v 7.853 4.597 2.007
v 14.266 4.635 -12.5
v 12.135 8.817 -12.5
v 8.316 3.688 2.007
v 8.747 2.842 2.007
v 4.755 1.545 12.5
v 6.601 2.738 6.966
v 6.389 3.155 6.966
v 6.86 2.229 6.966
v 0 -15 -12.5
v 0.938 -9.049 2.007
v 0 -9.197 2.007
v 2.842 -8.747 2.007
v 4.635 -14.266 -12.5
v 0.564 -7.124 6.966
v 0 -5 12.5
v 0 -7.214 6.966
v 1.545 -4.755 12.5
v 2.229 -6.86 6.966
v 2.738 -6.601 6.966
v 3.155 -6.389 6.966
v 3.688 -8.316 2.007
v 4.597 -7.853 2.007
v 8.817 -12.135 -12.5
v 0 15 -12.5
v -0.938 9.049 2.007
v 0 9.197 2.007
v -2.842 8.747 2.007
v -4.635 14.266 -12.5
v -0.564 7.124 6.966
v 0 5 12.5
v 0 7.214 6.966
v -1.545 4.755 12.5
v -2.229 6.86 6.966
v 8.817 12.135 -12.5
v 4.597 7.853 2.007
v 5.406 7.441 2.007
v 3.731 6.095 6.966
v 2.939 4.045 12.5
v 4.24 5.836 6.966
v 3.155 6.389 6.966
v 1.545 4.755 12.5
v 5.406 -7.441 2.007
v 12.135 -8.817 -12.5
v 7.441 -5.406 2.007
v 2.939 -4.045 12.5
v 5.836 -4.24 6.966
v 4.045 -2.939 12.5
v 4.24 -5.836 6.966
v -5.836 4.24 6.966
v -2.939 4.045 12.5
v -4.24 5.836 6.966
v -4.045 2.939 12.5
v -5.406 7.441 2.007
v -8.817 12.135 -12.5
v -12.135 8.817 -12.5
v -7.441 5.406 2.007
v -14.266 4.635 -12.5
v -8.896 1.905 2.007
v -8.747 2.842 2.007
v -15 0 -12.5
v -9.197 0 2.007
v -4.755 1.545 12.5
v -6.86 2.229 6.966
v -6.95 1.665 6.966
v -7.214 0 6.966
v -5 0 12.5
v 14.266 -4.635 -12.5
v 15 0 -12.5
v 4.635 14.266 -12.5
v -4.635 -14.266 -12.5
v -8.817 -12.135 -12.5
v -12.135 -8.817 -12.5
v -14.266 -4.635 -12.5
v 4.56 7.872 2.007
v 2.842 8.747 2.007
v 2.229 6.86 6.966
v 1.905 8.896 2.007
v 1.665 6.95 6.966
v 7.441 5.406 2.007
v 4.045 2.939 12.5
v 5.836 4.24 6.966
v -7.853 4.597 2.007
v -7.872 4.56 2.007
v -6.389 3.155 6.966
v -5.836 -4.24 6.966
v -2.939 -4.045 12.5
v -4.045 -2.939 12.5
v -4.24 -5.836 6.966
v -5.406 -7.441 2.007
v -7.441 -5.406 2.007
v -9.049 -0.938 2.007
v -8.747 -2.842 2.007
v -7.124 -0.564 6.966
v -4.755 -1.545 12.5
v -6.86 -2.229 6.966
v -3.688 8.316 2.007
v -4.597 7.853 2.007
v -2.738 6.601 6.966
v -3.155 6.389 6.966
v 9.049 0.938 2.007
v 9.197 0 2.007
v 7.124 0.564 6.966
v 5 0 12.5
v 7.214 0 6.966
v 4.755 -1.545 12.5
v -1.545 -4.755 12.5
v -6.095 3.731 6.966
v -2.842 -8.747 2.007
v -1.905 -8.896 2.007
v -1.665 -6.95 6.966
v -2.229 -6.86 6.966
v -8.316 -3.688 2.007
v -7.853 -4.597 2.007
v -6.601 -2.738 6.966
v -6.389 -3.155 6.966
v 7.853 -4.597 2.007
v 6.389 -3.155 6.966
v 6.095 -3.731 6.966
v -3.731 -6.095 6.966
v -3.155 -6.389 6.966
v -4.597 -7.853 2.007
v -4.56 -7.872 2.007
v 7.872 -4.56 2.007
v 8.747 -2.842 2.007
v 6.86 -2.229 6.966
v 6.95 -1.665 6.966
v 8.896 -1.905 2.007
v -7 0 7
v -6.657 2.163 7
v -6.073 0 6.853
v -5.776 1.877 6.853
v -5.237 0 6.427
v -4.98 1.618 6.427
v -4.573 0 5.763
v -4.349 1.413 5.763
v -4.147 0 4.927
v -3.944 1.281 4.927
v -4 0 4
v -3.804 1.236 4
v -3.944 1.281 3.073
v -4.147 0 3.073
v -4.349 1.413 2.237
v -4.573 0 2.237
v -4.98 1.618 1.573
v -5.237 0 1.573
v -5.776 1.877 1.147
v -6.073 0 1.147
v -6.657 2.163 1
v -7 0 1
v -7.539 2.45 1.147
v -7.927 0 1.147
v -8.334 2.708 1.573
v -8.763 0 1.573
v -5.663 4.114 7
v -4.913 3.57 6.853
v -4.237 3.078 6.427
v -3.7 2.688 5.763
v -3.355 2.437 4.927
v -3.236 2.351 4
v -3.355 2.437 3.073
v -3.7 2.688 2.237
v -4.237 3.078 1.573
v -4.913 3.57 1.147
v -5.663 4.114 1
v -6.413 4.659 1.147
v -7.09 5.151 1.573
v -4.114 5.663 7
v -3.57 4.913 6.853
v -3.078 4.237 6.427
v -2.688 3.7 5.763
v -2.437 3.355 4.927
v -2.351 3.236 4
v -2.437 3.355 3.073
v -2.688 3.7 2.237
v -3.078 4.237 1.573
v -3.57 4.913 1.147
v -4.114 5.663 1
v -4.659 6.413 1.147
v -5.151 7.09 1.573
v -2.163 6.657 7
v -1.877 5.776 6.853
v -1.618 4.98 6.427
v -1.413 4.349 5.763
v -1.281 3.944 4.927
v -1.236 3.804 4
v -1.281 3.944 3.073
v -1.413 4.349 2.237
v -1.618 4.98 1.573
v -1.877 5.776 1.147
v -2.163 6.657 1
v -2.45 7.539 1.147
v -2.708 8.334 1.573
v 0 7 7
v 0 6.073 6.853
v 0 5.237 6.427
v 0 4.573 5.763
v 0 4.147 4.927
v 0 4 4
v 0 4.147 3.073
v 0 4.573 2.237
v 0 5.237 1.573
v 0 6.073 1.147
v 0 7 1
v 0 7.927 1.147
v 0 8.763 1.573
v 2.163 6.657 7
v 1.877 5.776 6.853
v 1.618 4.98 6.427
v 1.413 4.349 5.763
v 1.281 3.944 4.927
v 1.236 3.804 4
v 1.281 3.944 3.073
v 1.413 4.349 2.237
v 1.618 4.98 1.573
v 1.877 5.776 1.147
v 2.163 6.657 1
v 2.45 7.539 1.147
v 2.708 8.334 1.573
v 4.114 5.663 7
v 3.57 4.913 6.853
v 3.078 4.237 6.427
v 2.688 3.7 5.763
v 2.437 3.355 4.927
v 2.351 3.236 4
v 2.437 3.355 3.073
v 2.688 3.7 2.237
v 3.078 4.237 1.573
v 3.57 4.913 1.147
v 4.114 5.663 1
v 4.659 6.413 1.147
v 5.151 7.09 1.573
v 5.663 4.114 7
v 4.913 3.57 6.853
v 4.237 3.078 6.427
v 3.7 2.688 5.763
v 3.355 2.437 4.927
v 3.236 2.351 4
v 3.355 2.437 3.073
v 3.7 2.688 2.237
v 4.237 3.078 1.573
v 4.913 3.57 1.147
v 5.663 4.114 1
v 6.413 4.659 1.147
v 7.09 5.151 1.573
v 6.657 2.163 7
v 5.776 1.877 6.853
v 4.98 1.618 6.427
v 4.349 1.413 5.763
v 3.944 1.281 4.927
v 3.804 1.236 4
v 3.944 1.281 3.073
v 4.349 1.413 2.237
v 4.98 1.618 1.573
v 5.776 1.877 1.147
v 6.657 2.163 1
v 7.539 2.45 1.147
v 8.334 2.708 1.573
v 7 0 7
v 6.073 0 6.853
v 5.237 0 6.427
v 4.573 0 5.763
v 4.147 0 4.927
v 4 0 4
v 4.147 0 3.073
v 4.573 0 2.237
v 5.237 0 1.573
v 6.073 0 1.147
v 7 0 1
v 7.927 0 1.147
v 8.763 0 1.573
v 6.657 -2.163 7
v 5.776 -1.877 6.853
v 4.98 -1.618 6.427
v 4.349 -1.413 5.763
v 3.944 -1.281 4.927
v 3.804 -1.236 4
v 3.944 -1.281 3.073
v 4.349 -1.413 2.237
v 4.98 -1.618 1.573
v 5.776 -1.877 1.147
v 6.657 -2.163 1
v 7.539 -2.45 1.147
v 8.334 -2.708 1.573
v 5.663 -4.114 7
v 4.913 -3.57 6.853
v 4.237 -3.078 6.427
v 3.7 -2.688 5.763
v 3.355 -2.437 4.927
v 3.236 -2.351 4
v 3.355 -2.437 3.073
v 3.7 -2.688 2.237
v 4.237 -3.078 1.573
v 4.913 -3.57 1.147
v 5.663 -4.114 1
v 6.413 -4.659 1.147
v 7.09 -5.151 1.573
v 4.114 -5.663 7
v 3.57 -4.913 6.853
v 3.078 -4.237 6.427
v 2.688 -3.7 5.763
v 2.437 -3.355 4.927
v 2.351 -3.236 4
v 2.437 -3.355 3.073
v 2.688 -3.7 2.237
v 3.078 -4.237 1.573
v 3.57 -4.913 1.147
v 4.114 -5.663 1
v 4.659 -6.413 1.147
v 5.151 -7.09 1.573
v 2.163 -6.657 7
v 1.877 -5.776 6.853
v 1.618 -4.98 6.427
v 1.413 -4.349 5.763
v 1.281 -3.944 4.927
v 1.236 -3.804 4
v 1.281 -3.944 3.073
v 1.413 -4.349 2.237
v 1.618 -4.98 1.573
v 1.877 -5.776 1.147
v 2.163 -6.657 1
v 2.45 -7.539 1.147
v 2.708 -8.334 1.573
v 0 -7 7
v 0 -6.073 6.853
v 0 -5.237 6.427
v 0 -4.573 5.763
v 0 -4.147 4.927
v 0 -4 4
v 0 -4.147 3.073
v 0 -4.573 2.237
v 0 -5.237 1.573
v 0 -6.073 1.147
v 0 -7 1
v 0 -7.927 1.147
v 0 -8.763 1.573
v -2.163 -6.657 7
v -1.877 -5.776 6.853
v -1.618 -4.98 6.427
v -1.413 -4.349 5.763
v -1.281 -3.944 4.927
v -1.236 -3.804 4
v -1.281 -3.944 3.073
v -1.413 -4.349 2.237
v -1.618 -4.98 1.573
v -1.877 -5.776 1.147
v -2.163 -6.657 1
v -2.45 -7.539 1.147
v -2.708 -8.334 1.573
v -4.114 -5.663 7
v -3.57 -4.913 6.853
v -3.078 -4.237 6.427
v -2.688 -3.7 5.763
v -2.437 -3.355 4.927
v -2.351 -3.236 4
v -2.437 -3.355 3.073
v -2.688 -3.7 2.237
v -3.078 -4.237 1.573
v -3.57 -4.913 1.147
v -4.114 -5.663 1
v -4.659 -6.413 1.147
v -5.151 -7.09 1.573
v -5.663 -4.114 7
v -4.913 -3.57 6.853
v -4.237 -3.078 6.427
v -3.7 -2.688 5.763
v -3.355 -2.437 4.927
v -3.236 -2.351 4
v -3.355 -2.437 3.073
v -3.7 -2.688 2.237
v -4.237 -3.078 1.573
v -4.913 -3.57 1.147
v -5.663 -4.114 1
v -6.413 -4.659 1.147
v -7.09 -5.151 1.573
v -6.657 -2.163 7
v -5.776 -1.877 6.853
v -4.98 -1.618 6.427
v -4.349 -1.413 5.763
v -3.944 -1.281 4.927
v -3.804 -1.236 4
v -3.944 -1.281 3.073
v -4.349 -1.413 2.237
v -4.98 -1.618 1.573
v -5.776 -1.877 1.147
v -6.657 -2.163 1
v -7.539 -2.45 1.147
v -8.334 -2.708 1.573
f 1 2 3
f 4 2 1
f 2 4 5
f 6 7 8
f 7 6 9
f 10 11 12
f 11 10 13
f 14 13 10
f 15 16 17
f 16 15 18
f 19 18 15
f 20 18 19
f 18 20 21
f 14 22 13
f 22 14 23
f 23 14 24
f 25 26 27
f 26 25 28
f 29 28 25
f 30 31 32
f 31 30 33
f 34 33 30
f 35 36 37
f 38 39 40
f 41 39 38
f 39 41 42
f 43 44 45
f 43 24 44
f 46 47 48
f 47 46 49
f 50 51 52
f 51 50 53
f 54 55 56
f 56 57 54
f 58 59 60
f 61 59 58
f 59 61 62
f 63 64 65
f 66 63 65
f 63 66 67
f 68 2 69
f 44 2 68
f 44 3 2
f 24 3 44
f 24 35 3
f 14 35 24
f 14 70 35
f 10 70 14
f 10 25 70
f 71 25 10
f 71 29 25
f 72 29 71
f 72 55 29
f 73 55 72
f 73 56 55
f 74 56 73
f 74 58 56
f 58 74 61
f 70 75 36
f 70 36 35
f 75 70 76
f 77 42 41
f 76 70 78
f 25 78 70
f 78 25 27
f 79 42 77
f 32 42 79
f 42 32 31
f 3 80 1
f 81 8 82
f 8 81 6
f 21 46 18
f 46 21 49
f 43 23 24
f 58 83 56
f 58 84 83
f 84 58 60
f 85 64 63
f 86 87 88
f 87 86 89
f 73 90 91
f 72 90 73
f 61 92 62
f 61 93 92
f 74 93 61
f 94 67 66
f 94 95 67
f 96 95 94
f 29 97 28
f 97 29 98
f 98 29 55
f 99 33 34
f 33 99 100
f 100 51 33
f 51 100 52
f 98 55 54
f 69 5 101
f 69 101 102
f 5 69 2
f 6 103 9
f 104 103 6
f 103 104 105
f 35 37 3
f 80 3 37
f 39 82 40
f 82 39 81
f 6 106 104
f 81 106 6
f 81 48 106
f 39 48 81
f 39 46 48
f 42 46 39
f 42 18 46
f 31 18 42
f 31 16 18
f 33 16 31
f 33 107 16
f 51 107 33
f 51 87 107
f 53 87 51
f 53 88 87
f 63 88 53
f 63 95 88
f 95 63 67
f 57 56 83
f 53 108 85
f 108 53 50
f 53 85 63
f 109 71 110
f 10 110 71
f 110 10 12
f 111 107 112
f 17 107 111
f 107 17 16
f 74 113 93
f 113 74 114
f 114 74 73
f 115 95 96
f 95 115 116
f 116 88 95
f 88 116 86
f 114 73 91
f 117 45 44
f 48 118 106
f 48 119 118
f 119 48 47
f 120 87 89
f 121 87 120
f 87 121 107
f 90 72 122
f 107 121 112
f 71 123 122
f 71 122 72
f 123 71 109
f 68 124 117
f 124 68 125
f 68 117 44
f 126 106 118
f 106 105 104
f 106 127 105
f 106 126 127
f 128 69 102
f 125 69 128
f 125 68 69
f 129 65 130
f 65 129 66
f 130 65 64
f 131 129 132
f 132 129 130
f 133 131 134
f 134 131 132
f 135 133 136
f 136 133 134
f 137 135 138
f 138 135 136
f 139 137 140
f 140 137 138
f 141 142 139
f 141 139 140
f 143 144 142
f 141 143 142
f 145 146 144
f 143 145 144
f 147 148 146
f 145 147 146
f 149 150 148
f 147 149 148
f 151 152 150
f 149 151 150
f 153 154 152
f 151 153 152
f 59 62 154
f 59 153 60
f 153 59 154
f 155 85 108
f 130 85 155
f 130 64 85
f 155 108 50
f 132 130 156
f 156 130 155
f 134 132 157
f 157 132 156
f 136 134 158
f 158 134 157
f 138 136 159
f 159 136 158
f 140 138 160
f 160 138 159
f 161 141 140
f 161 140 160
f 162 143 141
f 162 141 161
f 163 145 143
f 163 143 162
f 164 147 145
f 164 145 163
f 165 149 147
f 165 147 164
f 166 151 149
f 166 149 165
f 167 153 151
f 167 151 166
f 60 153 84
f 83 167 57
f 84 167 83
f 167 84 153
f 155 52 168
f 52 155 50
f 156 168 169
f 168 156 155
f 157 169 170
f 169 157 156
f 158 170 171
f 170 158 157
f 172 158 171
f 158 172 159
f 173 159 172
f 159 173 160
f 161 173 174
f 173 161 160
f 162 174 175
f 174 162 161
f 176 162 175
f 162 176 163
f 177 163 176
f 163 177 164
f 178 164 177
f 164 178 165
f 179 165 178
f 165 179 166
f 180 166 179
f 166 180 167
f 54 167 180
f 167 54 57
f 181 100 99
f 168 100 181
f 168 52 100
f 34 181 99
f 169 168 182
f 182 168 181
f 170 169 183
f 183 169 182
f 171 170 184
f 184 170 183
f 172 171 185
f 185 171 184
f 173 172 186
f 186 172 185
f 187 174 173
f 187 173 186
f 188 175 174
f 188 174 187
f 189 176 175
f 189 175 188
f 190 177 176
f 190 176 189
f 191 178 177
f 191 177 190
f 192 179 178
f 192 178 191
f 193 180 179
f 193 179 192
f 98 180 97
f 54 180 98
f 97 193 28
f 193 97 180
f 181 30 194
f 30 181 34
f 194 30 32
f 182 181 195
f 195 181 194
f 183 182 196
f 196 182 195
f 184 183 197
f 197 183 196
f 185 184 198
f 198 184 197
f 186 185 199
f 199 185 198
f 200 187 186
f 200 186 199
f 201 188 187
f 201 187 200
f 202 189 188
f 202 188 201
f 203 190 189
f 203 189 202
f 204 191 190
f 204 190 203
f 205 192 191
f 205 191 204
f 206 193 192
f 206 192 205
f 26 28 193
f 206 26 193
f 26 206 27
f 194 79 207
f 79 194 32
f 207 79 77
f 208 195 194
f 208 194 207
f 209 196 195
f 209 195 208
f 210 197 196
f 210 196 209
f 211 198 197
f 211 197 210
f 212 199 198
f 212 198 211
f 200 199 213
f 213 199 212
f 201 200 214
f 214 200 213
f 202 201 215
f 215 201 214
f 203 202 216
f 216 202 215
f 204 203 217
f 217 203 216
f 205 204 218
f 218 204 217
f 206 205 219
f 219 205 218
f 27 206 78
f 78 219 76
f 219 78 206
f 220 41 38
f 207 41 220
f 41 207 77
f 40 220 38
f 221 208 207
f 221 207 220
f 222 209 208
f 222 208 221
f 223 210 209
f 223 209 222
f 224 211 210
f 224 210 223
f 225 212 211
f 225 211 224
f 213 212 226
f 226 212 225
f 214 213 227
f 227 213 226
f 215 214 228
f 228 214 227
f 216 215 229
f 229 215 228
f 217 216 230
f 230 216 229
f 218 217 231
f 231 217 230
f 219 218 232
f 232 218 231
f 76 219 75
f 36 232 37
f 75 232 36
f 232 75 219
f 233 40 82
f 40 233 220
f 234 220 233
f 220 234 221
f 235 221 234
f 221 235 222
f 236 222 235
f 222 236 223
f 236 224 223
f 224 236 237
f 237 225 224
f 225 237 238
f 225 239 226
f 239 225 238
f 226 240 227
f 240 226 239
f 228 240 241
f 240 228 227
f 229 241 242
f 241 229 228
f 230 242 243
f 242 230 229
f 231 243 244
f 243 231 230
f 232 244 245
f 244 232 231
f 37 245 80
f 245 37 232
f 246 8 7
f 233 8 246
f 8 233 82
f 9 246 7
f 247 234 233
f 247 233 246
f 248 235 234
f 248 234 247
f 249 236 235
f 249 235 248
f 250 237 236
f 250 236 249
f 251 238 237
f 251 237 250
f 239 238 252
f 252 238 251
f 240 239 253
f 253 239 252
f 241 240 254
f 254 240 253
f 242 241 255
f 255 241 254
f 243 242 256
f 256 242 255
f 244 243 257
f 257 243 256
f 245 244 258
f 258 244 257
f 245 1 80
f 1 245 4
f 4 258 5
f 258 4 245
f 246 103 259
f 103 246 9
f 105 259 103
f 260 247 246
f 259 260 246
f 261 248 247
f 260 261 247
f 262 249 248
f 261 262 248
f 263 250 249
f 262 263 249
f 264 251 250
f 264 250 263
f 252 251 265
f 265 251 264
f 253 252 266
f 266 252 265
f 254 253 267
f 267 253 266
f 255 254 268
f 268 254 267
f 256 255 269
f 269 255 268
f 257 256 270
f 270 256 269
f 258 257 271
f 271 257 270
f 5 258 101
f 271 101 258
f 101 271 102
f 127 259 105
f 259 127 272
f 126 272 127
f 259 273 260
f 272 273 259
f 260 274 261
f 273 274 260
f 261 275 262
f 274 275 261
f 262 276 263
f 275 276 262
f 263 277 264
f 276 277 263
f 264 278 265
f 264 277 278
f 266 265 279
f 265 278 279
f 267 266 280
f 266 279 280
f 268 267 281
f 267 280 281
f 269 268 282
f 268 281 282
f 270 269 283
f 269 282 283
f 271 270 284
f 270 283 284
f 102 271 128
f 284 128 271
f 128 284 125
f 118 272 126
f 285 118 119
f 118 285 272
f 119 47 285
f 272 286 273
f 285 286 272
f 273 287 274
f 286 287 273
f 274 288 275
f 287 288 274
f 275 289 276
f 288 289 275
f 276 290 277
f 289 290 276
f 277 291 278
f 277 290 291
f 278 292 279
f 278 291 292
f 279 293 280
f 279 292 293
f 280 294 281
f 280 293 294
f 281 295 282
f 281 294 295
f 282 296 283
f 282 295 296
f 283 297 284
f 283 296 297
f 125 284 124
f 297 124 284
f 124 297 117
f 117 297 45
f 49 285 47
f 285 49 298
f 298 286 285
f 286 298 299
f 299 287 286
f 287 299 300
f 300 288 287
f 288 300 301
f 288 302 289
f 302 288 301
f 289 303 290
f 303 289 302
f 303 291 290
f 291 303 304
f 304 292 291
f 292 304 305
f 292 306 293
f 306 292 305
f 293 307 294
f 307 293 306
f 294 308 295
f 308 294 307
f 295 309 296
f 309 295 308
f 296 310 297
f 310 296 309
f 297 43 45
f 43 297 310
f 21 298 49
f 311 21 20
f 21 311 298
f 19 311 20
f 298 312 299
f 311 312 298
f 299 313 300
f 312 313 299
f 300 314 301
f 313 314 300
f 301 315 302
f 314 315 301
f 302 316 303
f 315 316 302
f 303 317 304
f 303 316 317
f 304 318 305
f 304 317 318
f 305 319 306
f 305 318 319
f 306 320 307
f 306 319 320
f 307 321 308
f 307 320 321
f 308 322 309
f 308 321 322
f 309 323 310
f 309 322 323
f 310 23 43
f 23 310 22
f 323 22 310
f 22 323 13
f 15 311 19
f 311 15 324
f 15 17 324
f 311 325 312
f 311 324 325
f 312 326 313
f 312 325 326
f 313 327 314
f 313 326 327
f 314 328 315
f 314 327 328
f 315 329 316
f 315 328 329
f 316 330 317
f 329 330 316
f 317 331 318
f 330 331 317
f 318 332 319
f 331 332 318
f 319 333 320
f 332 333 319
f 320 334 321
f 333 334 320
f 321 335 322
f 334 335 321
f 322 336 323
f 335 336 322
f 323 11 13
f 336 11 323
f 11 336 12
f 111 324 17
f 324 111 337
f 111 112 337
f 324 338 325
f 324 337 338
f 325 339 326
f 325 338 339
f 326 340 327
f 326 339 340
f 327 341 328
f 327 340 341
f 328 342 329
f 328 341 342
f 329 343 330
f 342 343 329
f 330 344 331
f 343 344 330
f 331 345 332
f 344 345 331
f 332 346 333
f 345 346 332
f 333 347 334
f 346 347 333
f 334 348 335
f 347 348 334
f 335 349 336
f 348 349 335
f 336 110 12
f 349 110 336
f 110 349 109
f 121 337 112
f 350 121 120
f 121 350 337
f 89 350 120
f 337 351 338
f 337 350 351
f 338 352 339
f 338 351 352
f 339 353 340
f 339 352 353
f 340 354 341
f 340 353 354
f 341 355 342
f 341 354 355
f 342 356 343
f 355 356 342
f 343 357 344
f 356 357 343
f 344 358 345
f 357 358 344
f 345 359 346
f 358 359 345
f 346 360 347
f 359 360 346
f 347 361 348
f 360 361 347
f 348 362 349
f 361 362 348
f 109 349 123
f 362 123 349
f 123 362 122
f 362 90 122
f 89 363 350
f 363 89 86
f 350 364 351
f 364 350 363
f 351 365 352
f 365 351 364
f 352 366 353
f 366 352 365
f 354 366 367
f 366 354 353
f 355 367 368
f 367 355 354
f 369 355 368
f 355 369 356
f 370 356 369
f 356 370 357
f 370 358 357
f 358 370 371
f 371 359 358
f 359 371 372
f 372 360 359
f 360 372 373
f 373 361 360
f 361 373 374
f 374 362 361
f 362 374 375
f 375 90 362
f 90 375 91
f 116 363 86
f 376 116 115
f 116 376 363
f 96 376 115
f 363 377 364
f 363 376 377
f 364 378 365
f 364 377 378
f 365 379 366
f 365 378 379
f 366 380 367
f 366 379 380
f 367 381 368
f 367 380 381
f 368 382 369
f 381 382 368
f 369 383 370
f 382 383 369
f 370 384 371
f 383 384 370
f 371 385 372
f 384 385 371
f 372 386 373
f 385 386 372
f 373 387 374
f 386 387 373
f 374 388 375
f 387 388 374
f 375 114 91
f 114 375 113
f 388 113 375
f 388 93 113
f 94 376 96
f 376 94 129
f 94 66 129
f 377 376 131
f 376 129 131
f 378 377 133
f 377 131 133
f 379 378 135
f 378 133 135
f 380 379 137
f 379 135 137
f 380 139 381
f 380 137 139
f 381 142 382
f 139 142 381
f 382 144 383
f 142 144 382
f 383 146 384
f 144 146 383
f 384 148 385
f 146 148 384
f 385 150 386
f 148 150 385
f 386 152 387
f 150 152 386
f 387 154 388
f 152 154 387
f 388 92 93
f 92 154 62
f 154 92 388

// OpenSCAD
$fn=20;

radius_bar =3; //mm

bend_radius =4; //long wheel

difference() {
cylinder(r1=15, r2=5,h=25,,center=true);
translate([0,0,4])
    rotate_extrude()
        translate([bend_radius + radius_bar, 0, 0])
            circle(r=radius_bar);
}
